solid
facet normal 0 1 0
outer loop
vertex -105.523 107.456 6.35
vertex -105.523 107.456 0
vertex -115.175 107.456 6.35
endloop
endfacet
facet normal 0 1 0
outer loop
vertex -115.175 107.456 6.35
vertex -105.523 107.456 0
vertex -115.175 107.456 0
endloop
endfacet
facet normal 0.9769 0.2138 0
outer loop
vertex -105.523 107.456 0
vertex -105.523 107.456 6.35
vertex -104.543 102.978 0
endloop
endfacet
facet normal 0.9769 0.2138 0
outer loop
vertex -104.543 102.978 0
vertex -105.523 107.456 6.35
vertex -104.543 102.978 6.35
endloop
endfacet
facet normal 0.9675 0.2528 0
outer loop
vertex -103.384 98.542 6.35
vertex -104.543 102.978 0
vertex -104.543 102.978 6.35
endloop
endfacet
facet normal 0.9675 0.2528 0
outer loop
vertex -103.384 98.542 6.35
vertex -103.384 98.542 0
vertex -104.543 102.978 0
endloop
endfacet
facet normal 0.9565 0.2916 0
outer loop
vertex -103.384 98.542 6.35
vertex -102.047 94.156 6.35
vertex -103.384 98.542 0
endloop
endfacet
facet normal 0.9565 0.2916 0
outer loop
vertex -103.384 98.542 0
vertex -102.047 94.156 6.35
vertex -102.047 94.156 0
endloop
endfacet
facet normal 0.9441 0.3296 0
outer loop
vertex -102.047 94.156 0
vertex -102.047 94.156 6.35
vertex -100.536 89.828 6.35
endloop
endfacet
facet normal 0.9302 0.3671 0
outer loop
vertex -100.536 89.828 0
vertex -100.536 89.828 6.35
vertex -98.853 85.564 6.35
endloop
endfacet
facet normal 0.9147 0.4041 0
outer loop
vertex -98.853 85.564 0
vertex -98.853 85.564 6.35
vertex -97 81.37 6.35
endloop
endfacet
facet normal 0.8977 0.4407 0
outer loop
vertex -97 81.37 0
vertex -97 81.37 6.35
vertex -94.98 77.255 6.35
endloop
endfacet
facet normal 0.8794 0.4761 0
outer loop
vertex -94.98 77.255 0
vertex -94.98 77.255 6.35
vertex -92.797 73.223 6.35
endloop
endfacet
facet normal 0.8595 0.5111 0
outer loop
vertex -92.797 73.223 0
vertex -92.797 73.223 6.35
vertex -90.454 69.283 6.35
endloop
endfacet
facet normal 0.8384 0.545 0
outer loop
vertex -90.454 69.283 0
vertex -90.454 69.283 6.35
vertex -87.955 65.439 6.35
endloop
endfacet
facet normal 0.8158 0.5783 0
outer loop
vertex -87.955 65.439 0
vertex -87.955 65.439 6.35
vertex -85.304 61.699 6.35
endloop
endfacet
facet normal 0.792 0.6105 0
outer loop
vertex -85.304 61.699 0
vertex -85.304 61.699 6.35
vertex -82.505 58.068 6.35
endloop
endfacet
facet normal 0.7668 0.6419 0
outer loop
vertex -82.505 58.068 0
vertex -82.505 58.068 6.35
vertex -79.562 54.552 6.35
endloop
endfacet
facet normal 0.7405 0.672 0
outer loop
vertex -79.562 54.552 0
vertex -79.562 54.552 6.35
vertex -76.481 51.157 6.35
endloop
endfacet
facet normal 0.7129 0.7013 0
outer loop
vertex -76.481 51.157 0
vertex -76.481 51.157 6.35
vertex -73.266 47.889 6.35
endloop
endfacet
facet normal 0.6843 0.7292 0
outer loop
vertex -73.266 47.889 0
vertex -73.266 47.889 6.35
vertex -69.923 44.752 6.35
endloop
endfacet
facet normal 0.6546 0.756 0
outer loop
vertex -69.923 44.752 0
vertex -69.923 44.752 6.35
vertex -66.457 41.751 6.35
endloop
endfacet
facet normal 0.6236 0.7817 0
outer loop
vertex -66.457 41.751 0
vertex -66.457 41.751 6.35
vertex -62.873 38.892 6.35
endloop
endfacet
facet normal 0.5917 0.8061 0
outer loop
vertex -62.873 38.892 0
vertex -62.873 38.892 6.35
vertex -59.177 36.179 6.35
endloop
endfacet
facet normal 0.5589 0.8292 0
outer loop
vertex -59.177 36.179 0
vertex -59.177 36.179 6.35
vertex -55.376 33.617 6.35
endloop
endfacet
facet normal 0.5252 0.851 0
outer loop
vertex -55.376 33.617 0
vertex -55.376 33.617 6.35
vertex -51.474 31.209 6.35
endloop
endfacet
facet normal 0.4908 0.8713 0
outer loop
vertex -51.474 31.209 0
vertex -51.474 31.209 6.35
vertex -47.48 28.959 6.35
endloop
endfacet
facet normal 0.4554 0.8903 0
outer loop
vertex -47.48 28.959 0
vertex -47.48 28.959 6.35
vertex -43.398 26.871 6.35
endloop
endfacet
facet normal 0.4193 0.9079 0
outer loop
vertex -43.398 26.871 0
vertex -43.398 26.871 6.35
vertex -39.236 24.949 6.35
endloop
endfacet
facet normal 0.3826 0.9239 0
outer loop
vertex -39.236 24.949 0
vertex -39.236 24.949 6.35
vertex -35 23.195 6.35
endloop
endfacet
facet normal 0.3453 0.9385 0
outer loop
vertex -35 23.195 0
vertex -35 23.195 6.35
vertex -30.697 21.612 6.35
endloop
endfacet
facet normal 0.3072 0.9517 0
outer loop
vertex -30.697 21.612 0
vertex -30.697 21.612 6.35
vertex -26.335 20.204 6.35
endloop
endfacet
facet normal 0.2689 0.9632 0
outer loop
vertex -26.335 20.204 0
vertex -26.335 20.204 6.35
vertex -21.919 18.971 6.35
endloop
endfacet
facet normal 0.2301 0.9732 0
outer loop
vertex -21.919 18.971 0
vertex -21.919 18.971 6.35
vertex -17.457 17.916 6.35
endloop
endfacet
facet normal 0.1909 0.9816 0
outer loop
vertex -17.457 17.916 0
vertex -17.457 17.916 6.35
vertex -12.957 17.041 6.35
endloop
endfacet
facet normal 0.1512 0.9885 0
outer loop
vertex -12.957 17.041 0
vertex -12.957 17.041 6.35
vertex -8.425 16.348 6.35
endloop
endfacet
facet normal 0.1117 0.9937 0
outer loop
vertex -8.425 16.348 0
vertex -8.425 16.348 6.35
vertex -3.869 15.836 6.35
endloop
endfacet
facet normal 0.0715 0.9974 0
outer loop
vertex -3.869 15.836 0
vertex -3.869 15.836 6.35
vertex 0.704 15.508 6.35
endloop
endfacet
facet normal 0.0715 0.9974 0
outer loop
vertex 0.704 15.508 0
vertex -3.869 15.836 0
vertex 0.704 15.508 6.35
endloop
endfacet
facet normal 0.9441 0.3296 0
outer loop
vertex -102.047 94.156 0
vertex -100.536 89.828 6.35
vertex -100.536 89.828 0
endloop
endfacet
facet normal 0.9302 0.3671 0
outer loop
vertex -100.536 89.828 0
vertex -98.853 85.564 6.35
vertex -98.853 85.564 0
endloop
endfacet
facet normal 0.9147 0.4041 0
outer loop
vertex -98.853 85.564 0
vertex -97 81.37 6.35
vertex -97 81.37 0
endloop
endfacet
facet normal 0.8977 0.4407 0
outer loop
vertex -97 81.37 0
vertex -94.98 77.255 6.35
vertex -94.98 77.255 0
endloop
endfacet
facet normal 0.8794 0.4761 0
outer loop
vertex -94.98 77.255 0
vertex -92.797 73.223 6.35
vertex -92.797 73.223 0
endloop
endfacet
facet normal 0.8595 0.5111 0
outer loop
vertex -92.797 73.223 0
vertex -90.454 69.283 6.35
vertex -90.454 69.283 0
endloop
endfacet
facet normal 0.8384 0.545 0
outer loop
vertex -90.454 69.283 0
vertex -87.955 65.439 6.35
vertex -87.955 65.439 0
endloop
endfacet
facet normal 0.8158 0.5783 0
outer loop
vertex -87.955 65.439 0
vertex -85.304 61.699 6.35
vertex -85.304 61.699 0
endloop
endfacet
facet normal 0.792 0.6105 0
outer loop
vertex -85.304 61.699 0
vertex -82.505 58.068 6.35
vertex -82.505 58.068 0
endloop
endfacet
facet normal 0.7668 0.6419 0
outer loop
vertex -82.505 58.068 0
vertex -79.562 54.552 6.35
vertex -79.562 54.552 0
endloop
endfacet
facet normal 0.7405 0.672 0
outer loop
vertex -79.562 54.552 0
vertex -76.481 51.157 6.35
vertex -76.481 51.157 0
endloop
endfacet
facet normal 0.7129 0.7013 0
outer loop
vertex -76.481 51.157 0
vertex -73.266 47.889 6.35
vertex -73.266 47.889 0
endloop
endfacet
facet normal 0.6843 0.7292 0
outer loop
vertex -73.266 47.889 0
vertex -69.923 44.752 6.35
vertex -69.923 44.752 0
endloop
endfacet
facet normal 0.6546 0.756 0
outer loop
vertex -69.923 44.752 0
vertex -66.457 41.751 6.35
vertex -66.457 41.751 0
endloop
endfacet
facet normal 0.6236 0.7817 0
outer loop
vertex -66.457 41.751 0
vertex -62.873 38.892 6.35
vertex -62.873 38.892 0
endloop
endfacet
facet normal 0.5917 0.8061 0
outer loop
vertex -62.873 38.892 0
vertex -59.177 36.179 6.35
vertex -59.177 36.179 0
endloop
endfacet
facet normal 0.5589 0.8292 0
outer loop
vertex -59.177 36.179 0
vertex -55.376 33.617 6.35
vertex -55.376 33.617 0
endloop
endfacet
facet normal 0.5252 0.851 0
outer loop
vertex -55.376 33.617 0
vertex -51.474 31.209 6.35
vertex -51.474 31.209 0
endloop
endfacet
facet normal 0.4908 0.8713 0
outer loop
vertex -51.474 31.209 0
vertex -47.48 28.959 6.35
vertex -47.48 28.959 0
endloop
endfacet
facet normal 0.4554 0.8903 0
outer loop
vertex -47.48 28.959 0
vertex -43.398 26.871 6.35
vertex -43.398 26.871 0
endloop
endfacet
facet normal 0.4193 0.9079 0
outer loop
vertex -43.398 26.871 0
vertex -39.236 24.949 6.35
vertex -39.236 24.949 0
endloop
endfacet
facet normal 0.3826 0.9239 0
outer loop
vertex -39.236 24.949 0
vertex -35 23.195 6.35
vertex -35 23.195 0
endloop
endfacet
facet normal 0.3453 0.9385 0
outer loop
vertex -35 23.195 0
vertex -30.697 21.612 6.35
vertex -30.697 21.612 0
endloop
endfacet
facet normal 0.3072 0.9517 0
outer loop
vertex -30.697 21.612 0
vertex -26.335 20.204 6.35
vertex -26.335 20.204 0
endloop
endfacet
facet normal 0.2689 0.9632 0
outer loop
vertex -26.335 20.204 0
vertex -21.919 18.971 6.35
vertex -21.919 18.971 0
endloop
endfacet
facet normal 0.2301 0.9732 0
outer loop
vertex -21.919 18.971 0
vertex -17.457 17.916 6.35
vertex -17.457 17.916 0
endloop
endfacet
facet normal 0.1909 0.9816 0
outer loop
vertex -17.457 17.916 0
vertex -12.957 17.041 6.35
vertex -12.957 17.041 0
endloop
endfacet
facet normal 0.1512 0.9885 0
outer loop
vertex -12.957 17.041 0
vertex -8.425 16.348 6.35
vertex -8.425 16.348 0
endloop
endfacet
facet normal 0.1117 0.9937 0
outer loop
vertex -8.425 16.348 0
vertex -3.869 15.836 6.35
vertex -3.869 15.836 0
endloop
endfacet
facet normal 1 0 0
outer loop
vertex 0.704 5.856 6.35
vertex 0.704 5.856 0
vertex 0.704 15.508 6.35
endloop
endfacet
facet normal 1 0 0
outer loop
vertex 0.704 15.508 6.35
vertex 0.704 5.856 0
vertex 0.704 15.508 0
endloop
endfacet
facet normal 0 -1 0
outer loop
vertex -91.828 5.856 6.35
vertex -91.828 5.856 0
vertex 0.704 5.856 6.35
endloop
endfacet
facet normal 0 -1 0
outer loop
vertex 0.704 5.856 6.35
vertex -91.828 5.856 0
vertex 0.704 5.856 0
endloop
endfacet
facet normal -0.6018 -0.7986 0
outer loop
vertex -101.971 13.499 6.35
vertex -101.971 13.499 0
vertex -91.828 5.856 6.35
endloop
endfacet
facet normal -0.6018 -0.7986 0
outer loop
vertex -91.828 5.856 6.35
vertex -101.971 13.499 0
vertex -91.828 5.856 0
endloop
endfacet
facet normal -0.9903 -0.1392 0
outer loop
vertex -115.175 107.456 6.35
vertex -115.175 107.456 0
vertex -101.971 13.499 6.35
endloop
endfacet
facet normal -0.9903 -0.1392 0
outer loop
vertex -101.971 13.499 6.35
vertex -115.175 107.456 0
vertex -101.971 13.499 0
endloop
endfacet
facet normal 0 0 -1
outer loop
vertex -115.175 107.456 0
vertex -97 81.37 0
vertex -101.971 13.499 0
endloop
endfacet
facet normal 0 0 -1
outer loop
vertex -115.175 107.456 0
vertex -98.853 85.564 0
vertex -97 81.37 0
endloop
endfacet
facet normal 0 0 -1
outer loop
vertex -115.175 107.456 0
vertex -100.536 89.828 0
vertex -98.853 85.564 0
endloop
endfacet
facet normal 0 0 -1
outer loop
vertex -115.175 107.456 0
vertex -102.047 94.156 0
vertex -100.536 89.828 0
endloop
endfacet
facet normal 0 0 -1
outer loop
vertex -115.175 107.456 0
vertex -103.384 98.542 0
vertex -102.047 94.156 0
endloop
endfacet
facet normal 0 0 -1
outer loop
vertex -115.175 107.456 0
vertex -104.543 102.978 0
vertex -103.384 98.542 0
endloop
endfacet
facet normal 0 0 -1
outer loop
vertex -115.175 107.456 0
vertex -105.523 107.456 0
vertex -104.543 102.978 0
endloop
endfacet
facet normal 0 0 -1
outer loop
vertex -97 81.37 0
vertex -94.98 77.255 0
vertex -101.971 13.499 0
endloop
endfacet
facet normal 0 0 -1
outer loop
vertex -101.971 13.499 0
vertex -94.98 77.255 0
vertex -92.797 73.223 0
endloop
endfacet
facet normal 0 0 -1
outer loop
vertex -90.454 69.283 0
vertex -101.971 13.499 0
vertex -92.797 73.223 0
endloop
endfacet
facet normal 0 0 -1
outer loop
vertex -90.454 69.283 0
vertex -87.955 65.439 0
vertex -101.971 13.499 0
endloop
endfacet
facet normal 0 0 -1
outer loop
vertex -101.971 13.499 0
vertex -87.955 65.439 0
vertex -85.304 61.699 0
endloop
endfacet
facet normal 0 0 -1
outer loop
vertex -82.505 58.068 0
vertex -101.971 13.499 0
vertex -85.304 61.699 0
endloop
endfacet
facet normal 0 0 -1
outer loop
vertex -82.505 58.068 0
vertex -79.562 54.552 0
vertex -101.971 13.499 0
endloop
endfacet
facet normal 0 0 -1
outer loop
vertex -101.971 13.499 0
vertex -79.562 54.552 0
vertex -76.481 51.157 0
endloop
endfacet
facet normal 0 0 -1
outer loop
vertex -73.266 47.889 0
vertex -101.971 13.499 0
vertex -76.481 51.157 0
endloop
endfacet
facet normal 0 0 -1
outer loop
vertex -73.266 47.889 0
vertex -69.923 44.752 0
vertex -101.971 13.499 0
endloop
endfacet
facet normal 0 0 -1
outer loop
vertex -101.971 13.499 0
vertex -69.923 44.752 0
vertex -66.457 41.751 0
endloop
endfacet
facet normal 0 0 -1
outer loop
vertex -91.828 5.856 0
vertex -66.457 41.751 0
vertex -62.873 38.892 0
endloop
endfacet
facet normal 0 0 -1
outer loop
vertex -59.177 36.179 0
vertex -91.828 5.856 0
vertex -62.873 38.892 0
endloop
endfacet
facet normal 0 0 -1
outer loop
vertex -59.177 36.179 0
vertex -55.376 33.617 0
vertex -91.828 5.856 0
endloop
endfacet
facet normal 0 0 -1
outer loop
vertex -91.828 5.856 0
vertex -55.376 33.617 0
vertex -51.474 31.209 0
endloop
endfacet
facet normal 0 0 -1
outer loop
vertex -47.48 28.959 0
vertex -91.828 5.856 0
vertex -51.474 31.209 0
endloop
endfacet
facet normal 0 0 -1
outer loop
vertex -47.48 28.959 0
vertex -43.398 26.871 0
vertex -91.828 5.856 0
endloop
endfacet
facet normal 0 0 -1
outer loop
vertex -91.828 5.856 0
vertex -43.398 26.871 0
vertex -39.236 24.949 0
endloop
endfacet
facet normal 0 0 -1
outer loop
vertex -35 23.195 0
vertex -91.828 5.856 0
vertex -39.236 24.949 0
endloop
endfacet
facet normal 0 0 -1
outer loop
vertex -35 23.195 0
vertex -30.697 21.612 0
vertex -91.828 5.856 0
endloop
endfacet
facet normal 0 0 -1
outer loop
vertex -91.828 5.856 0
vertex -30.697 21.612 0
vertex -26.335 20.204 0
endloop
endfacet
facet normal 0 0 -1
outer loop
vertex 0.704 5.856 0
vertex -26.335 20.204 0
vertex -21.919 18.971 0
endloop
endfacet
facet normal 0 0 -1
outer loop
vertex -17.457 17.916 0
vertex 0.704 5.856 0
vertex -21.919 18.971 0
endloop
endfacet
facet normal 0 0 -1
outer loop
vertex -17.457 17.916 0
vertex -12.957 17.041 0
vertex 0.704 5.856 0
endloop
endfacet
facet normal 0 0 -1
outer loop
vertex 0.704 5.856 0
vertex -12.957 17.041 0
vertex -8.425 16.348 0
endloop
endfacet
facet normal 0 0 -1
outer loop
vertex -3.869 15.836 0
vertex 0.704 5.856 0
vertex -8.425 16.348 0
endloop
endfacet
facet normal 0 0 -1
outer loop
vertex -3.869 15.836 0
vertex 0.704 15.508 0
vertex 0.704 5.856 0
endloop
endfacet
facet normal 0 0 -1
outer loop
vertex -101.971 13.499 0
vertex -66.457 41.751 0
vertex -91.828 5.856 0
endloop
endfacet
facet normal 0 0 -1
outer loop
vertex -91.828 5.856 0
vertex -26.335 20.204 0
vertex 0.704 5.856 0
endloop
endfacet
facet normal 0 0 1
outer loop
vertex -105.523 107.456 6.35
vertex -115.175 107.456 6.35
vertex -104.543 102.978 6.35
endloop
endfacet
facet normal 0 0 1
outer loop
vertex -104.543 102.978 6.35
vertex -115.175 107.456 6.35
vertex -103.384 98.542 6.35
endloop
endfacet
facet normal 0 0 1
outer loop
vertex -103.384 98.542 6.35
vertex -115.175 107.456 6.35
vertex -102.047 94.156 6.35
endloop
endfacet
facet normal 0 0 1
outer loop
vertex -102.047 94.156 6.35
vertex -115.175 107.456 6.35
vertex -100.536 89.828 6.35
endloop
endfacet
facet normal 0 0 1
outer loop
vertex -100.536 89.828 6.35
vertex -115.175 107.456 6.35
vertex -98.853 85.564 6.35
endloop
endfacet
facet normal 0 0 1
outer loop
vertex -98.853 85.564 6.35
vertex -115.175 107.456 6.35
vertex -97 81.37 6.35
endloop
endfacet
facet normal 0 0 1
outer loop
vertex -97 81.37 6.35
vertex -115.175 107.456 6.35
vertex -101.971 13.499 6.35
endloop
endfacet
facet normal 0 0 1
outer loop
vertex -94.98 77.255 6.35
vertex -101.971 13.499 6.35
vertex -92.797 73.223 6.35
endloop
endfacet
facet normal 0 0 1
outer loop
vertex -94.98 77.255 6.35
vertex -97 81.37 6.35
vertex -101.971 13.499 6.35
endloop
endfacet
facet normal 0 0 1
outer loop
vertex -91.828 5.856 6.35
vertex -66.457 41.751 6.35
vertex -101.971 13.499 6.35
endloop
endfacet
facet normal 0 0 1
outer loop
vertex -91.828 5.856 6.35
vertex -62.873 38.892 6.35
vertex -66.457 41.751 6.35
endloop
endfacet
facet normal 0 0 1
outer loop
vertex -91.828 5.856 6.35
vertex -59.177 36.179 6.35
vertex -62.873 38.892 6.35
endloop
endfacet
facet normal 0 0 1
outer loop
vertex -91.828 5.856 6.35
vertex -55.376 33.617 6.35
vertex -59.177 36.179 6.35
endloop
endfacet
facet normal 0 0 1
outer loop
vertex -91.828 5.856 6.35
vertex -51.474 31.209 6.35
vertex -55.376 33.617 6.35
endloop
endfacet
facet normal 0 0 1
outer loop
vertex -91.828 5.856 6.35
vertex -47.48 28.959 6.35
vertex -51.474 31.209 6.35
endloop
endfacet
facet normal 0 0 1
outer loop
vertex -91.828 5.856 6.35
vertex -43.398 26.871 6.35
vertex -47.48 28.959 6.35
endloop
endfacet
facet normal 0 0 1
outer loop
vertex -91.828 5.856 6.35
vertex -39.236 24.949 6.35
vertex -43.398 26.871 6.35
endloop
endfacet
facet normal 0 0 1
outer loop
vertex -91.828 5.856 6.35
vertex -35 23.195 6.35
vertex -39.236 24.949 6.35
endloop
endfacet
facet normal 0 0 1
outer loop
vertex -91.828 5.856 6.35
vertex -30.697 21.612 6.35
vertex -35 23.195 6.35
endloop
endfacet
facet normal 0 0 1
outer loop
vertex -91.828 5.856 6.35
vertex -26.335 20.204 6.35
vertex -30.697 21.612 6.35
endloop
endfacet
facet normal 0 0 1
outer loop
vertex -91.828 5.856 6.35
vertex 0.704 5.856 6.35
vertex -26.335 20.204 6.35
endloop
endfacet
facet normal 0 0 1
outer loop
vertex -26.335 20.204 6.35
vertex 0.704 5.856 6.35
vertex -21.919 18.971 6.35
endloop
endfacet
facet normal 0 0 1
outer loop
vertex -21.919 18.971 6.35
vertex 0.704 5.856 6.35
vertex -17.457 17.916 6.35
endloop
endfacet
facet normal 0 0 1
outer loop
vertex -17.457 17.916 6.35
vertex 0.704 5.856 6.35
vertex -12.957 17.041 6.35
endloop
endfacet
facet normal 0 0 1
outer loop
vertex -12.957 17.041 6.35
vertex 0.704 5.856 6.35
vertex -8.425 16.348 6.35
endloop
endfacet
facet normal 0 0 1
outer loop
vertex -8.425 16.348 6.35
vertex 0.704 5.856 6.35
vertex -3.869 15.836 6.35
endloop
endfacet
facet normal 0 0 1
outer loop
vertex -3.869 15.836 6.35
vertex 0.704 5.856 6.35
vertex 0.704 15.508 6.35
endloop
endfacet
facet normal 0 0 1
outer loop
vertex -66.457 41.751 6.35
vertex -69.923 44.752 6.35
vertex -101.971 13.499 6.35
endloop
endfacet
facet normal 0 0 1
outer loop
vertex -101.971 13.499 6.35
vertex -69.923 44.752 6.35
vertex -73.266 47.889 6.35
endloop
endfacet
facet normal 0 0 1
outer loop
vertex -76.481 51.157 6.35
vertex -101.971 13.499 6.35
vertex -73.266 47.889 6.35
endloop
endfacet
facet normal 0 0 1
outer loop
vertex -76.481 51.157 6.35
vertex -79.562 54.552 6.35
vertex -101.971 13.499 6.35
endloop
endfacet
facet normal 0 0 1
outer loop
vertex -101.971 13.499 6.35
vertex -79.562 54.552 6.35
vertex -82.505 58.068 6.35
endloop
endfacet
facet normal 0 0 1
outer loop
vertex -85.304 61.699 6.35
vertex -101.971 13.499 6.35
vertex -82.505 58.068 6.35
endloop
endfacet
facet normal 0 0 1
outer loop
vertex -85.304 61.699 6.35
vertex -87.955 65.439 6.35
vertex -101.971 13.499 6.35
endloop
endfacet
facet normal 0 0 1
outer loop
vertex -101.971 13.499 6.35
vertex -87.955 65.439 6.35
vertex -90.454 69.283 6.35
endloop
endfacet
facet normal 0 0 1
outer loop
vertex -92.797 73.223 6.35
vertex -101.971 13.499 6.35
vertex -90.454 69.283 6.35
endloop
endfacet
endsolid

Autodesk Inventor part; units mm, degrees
ref_plane "YZ Plane" through (0, 0, 0) normal (1, 0, 0) x (0, 1, 0)
ref_plane "XZ Plane" through (0, 0, 0) normal (0, 1, 0) x (-1, 0, 0)
ref_plane "XY Plane" through (0, 0, 0) normal (0, 0, 1) x (1, 0, 0)
sketch "Sketch1" plane through (0, 0, 0) normal (0, 0, 1) x (1, 0, 0)
  line L0 (-115.1754, 107.4561) -> (0.7036, 107.4561)
  line L1 (0.7036, 107.4561) -> (0.7036, 5.8561)
  line L2 (0.7036, 5.8561) -> (-115.1754, 5.8561)
  line L3 (-115.1754, 5.8561) -> (-115.1754, 107.4561)
  line L4 (-115.1754, 107.4561) -> (-100.8964, 5.8561)
  arc A0 (-105.5234, 107.4561) -> (0.7036, 15.5081) centre (6.6, 129.6559) ccw
  line L5 (-101.9706, 13.4992) -> (-91.8279, 5.8561)
  dimension "d0" = 101.6
  dimension "d2" = 8
  dimension "d6" = 9.652
  dimension "d7" = 9.652
  dimension "d8" = 114.3
  dimension "d9" = 123.7998
  dimension "d13" = 101.6
  dimension "d14" = 12.7
  dimension "d15" = 37
extrude "Extrusion1" add sketch "Sketch1" along normal blind 6.35 contours L0 A0 L1 L2 L5 L4
properties part number "FE-00013-03"
